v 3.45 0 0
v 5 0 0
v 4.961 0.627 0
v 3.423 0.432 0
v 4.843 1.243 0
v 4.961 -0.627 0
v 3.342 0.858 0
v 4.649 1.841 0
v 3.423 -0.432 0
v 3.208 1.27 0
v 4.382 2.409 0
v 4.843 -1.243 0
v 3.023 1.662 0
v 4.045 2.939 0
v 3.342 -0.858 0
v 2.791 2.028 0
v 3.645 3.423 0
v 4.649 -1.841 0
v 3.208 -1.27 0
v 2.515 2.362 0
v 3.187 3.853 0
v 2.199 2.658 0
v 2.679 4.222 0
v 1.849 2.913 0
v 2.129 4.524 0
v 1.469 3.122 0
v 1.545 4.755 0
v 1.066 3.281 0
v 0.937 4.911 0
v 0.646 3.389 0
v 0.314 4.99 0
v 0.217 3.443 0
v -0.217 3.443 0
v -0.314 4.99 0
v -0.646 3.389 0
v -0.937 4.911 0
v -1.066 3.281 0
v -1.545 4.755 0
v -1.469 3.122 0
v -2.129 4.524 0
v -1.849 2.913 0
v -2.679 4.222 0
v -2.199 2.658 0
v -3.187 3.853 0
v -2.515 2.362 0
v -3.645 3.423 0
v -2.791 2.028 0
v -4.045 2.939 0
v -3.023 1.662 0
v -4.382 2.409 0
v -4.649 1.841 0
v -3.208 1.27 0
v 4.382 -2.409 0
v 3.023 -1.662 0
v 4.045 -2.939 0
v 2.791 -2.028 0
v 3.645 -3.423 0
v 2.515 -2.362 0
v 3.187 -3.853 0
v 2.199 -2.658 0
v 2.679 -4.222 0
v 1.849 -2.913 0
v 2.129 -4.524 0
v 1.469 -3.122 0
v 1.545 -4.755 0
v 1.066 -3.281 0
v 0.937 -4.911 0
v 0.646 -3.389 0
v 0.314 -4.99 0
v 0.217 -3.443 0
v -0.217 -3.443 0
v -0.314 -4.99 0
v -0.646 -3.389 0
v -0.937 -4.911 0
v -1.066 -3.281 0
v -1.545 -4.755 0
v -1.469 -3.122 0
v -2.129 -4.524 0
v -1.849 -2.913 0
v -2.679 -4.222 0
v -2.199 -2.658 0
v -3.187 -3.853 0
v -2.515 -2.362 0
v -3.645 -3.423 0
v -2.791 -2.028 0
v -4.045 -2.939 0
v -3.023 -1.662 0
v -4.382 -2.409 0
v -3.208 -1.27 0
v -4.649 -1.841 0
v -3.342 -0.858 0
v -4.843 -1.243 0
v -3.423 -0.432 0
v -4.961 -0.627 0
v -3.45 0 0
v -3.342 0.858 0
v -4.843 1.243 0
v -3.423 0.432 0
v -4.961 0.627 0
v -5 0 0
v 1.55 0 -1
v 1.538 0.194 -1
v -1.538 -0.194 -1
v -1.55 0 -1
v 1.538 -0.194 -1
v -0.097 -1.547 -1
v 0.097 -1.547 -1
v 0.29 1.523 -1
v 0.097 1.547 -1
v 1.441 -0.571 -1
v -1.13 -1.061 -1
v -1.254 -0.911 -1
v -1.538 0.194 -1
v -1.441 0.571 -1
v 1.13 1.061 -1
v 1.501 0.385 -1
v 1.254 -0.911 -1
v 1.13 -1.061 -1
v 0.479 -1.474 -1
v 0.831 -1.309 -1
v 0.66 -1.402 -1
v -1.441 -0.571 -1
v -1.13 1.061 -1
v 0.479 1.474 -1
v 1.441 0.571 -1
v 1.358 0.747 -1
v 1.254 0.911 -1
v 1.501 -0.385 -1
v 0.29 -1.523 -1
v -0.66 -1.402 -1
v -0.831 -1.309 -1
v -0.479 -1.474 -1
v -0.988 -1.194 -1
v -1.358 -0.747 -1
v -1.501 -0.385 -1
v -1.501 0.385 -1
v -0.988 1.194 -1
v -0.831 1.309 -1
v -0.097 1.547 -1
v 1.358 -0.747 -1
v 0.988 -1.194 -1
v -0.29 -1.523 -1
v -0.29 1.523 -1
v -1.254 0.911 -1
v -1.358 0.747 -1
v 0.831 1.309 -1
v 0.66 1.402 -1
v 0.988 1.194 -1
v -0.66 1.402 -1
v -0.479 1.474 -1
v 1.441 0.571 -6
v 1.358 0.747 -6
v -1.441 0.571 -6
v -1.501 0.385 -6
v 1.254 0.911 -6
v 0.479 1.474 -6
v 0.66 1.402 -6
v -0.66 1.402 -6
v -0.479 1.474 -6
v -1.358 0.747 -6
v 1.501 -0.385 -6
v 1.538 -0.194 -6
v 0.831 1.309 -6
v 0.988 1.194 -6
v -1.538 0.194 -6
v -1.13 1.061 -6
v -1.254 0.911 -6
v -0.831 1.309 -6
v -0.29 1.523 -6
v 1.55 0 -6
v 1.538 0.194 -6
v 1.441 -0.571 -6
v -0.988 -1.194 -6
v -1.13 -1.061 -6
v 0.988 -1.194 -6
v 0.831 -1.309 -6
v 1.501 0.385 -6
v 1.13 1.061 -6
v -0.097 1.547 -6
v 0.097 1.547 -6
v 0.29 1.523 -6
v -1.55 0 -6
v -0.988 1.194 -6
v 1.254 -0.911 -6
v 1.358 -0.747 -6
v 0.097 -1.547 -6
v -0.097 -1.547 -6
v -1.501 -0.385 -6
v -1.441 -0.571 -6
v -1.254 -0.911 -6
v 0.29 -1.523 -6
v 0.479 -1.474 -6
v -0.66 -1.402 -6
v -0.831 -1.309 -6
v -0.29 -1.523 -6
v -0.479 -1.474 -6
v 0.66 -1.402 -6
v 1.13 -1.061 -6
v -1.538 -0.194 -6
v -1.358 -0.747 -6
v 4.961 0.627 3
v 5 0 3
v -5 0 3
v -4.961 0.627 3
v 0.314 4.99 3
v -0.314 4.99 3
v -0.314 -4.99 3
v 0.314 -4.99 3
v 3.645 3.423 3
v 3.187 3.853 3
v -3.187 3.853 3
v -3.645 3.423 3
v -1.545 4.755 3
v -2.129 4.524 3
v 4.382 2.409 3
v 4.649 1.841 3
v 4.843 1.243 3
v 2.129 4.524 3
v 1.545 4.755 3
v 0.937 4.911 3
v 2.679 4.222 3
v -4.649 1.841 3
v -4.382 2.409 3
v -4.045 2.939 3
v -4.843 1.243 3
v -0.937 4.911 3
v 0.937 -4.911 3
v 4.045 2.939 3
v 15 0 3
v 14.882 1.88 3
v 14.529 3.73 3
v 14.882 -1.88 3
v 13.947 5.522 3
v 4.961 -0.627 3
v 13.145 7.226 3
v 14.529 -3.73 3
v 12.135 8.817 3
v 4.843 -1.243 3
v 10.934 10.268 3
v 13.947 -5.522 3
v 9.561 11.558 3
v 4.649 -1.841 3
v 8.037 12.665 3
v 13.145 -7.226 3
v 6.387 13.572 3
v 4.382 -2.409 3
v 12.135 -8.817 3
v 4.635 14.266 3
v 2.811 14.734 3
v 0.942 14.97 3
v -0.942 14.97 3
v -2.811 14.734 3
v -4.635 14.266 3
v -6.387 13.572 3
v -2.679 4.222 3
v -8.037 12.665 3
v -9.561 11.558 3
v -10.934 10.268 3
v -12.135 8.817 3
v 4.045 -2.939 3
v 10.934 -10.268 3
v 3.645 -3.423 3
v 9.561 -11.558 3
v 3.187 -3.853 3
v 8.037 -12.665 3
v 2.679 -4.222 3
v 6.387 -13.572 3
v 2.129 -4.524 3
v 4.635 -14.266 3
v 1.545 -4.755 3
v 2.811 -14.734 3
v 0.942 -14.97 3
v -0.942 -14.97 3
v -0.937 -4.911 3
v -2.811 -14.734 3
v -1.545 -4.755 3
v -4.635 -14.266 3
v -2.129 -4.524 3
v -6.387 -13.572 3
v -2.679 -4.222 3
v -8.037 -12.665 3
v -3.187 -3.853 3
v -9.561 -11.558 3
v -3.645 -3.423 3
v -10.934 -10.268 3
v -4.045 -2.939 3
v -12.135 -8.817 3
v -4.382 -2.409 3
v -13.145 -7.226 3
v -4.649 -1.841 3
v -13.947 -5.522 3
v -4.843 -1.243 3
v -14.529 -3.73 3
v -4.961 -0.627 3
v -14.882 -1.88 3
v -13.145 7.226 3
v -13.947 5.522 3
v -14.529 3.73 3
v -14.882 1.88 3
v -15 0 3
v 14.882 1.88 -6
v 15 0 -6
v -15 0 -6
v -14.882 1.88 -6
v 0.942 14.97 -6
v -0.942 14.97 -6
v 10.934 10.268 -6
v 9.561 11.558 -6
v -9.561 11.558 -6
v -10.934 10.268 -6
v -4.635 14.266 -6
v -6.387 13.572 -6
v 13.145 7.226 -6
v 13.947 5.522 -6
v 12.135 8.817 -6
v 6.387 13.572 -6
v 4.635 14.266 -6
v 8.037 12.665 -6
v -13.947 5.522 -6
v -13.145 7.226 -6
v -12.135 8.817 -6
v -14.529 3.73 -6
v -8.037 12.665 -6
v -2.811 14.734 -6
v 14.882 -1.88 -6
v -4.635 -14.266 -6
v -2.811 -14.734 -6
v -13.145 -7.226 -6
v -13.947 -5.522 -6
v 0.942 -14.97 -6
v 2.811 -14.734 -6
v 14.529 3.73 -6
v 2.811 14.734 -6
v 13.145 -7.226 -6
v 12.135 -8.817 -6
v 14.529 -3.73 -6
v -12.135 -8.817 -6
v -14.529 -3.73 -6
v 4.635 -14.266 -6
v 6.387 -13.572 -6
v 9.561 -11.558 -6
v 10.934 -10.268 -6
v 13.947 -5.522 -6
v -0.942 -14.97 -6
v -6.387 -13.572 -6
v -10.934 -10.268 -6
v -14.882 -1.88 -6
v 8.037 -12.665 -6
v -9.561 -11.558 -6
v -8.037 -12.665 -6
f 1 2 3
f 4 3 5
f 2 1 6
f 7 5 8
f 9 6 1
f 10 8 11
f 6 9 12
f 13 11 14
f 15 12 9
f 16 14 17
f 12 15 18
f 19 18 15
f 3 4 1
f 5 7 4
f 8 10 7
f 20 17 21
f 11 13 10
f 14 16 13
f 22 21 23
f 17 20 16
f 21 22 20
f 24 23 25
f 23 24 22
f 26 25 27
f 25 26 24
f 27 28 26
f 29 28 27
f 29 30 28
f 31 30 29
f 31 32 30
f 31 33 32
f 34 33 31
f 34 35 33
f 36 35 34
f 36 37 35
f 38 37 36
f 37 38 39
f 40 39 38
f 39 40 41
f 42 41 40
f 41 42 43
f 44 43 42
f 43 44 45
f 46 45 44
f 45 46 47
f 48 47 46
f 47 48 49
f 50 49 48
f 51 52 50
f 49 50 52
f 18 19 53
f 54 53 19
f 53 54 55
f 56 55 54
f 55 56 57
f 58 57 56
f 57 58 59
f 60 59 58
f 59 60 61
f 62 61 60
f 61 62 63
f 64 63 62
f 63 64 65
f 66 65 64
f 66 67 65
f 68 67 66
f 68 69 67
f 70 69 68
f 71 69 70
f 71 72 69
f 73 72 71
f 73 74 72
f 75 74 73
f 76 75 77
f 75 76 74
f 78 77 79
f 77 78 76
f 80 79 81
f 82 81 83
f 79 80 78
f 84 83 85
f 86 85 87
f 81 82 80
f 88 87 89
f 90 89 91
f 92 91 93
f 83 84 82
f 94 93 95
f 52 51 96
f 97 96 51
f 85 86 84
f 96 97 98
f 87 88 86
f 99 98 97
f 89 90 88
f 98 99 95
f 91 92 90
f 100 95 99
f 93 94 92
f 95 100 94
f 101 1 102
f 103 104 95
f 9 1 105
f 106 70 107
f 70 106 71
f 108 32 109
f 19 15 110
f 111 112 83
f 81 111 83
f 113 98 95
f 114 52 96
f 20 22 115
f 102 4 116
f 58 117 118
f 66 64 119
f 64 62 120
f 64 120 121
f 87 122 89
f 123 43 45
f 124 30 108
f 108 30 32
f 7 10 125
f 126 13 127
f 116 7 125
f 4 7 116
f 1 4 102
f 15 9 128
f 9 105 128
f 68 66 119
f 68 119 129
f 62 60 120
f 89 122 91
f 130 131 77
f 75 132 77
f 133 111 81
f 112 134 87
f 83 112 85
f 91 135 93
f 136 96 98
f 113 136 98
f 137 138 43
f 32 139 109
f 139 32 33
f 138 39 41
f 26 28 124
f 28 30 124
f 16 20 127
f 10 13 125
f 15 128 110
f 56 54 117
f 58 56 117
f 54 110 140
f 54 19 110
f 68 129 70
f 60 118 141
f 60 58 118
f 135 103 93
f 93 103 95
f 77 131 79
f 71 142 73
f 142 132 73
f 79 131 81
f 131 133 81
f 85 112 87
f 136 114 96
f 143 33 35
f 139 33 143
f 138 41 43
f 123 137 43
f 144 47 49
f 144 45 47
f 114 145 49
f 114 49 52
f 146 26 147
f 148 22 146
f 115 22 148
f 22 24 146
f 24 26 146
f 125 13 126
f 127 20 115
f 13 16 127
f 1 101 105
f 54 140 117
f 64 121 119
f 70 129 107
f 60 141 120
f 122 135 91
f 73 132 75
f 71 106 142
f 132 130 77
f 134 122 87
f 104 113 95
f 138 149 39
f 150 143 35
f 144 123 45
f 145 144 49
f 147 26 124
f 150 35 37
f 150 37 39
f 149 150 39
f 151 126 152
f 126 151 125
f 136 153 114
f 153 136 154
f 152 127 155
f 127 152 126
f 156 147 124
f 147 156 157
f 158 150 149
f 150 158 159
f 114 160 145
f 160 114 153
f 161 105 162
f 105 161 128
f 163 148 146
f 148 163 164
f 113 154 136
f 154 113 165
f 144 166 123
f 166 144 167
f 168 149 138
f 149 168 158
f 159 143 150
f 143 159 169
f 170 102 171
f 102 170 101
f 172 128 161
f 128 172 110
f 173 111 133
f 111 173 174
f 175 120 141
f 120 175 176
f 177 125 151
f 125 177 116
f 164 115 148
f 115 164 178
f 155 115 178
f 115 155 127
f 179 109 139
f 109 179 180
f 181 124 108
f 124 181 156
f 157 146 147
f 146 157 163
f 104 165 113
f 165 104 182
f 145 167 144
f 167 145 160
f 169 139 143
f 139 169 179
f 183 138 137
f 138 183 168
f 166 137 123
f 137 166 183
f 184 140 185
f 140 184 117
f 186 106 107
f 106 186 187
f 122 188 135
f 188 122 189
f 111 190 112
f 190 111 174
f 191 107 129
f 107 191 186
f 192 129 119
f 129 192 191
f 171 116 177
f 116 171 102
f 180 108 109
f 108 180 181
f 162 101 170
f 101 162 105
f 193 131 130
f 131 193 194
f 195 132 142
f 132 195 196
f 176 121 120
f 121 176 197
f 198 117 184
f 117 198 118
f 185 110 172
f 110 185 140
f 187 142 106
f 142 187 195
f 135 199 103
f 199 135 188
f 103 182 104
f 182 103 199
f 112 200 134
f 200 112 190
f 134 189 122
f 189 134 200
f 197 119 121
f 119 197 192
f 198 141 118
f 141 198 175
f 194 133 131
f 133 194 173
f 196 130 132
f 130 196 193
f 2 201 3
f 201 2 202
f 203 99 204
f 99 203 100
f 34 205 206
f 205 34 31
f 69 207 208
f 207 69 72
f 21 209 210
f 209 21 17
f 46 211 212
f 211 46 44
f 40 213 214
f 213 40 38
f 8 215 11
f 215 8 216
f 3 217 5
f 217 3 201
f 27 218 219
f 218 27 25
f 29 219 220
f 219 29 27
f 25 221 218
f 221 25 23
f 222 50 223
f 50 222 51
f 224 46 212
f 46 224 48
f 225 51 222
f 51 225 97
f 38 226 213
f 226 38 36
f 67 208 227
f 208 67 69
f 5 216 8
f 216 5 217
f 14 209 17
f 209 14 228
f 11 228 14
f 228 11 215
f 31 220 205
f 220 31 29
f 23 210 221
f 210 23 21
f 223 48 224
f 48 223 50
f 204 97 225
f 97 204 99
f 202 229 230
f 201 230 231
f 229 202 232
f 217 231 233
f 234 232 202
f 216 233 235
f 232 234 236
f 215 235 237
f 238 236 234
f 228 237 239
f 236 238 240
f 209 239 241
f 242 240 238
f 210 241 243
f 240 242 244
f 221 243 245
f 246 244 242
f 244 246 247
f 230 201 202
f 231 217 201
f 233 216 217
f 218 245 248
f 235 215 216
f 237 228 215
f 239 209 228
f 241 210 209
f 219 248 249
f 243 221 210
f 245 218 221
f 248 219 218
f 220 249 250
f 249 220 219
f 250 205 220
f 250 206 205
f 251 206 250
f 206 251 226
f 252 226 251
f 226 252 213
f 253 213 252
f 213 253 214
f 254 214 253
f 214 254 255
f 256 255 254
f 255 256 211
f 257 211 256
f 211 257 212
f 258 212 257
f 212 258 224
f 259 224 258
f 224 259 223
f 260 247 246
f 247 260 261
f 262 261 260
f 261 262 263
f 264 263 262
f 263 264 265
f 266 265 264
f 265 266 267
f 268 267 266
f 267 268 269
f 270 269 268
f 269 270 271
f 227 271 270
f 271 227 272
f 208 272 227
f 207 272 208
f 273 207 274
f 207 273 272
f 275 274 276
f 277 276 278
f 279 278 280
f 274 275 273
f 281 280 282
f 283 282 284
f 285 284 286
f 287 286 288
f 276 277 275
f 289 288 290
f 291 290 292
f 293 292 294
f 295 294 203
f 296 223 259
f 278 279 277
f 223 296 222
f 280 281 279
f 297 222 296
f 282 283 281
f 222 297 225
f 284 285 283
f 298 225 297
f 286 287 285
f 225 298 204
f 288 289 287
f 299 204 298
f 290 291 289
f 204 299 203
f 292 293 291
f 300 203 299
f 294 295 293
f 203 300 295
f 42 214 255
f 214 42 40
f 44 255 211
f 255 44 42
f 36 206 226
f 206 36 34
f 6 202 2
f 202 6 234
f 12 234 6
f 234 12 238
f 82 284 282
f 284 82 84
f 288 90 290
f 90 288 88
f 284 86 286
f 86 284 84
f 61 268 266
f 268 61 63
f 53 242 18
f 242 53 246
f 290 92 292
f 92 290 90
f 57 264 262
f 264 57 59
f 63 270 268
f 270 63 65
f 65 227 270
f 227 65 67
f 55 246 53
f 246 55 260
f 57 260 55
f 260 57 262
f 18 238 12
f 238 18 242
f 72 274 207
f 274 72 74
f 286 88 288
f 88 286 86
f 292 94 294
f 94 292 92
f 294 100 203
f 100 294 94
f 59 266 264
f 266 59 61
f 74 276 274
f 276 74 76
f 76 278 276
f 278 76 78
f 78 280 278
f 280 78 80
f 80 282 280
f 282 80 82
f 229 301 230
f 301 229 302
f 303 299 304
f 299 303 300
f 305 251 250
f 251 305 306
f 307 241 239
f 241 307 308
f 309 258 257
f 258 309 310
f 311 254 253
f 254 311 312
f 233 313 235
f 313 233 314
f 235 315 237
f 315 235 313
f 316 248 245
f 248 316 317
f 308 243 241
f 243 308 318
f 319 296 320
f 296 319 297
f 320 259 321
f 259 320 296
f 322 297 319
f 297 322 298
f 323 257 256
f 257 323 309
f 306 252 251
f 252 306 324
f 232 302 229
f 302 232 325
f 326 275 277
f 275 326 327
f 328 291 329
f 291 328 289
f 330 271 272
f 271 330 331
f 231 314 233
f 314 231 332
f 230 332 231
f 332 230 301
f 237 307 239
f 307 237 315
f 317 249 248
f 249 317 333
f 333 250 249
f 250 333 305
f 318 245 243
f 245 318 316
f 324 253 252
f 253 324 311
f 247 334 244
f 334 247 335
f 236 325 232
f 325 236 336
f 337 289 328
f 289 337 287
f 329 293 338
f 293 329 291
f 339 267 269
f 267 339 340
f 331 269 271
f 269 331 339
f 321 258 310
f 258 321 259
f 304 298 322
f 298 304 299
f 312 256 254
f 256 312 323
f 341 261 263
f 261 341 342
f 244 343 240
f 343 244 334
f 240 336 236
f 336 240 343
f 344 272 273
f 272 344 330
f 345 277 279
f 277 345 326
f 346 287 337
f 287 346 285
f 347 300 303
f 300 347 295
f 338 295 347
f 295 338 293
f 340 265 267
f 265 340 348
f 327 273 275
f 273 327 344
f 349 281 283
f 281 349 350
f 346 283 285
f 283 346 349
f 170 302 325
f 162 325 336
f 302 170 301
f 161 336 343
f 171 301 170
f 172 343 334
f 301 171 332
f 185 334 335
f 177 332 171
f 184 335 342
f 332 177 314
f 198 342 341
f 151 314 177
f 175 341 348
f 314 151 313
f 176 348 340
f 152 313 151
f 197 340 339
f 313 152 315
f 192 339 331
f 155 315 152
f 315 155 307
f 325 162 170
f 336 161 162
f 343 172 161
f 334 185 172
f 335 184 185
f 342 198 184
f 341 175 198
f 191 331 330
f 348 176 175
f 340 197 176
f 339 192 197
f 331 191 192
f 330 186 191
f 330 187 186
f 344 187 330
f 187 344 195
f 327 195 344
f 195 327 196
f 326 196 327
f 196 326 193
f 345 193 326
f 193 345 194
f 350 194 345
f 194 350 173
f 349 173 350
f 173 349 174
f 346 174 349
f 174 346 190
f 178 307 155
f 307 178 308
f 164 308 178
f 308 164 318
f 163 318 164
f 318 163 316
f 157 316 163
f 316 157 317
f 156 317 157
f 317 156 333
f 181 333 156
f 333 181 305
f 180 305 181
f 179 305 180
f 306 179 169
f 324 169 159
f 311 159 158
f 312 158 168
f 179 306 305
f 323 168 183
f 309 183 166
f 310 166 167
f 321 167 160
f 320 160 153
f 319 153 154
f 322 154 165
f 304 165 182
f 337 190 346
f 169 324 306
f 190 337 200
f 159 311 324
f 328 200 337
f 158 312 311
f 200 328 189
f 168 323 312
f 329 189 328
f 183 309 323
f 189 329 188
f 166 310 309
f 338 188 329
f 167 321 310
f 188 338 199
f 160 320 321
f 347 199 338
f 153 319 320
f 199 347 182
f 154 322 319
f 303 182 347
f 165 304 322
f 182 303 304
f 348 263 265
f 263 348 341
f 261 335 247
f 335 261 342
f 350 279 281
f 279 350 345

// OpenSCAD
$fn = 50;

difference() {
	union() {
		translate(v = [0, 0, -6.0]) {
			cylinder(h = 9, r = 15.0);
		}
	}
	union() {
		translate(v = [0, 0, 0]) {
			rotate(a = [0, 0, 0]) {
				difference() {
					union() {
						translate(v = [0, 0, -9.0]) {
							cylinder(h = 9, r = 1.25);
						}
						translate(v = [0, 0, -1.0]) {
							cylinder(h = 1.0, r1 = 1.55, r2 = 3.45);
						}
						translate(v = [0, 0, -9.0]) {
							cylinder(h = 9, r = 1.55);
						}
						translate(v = [0, 0, -9.0]) {
							cylinder(h = 9, r = 1.25);
						}
					}
					union();
				}
			}
		}
		#cylinder(h = 3, r = 5.0);
	}
}
